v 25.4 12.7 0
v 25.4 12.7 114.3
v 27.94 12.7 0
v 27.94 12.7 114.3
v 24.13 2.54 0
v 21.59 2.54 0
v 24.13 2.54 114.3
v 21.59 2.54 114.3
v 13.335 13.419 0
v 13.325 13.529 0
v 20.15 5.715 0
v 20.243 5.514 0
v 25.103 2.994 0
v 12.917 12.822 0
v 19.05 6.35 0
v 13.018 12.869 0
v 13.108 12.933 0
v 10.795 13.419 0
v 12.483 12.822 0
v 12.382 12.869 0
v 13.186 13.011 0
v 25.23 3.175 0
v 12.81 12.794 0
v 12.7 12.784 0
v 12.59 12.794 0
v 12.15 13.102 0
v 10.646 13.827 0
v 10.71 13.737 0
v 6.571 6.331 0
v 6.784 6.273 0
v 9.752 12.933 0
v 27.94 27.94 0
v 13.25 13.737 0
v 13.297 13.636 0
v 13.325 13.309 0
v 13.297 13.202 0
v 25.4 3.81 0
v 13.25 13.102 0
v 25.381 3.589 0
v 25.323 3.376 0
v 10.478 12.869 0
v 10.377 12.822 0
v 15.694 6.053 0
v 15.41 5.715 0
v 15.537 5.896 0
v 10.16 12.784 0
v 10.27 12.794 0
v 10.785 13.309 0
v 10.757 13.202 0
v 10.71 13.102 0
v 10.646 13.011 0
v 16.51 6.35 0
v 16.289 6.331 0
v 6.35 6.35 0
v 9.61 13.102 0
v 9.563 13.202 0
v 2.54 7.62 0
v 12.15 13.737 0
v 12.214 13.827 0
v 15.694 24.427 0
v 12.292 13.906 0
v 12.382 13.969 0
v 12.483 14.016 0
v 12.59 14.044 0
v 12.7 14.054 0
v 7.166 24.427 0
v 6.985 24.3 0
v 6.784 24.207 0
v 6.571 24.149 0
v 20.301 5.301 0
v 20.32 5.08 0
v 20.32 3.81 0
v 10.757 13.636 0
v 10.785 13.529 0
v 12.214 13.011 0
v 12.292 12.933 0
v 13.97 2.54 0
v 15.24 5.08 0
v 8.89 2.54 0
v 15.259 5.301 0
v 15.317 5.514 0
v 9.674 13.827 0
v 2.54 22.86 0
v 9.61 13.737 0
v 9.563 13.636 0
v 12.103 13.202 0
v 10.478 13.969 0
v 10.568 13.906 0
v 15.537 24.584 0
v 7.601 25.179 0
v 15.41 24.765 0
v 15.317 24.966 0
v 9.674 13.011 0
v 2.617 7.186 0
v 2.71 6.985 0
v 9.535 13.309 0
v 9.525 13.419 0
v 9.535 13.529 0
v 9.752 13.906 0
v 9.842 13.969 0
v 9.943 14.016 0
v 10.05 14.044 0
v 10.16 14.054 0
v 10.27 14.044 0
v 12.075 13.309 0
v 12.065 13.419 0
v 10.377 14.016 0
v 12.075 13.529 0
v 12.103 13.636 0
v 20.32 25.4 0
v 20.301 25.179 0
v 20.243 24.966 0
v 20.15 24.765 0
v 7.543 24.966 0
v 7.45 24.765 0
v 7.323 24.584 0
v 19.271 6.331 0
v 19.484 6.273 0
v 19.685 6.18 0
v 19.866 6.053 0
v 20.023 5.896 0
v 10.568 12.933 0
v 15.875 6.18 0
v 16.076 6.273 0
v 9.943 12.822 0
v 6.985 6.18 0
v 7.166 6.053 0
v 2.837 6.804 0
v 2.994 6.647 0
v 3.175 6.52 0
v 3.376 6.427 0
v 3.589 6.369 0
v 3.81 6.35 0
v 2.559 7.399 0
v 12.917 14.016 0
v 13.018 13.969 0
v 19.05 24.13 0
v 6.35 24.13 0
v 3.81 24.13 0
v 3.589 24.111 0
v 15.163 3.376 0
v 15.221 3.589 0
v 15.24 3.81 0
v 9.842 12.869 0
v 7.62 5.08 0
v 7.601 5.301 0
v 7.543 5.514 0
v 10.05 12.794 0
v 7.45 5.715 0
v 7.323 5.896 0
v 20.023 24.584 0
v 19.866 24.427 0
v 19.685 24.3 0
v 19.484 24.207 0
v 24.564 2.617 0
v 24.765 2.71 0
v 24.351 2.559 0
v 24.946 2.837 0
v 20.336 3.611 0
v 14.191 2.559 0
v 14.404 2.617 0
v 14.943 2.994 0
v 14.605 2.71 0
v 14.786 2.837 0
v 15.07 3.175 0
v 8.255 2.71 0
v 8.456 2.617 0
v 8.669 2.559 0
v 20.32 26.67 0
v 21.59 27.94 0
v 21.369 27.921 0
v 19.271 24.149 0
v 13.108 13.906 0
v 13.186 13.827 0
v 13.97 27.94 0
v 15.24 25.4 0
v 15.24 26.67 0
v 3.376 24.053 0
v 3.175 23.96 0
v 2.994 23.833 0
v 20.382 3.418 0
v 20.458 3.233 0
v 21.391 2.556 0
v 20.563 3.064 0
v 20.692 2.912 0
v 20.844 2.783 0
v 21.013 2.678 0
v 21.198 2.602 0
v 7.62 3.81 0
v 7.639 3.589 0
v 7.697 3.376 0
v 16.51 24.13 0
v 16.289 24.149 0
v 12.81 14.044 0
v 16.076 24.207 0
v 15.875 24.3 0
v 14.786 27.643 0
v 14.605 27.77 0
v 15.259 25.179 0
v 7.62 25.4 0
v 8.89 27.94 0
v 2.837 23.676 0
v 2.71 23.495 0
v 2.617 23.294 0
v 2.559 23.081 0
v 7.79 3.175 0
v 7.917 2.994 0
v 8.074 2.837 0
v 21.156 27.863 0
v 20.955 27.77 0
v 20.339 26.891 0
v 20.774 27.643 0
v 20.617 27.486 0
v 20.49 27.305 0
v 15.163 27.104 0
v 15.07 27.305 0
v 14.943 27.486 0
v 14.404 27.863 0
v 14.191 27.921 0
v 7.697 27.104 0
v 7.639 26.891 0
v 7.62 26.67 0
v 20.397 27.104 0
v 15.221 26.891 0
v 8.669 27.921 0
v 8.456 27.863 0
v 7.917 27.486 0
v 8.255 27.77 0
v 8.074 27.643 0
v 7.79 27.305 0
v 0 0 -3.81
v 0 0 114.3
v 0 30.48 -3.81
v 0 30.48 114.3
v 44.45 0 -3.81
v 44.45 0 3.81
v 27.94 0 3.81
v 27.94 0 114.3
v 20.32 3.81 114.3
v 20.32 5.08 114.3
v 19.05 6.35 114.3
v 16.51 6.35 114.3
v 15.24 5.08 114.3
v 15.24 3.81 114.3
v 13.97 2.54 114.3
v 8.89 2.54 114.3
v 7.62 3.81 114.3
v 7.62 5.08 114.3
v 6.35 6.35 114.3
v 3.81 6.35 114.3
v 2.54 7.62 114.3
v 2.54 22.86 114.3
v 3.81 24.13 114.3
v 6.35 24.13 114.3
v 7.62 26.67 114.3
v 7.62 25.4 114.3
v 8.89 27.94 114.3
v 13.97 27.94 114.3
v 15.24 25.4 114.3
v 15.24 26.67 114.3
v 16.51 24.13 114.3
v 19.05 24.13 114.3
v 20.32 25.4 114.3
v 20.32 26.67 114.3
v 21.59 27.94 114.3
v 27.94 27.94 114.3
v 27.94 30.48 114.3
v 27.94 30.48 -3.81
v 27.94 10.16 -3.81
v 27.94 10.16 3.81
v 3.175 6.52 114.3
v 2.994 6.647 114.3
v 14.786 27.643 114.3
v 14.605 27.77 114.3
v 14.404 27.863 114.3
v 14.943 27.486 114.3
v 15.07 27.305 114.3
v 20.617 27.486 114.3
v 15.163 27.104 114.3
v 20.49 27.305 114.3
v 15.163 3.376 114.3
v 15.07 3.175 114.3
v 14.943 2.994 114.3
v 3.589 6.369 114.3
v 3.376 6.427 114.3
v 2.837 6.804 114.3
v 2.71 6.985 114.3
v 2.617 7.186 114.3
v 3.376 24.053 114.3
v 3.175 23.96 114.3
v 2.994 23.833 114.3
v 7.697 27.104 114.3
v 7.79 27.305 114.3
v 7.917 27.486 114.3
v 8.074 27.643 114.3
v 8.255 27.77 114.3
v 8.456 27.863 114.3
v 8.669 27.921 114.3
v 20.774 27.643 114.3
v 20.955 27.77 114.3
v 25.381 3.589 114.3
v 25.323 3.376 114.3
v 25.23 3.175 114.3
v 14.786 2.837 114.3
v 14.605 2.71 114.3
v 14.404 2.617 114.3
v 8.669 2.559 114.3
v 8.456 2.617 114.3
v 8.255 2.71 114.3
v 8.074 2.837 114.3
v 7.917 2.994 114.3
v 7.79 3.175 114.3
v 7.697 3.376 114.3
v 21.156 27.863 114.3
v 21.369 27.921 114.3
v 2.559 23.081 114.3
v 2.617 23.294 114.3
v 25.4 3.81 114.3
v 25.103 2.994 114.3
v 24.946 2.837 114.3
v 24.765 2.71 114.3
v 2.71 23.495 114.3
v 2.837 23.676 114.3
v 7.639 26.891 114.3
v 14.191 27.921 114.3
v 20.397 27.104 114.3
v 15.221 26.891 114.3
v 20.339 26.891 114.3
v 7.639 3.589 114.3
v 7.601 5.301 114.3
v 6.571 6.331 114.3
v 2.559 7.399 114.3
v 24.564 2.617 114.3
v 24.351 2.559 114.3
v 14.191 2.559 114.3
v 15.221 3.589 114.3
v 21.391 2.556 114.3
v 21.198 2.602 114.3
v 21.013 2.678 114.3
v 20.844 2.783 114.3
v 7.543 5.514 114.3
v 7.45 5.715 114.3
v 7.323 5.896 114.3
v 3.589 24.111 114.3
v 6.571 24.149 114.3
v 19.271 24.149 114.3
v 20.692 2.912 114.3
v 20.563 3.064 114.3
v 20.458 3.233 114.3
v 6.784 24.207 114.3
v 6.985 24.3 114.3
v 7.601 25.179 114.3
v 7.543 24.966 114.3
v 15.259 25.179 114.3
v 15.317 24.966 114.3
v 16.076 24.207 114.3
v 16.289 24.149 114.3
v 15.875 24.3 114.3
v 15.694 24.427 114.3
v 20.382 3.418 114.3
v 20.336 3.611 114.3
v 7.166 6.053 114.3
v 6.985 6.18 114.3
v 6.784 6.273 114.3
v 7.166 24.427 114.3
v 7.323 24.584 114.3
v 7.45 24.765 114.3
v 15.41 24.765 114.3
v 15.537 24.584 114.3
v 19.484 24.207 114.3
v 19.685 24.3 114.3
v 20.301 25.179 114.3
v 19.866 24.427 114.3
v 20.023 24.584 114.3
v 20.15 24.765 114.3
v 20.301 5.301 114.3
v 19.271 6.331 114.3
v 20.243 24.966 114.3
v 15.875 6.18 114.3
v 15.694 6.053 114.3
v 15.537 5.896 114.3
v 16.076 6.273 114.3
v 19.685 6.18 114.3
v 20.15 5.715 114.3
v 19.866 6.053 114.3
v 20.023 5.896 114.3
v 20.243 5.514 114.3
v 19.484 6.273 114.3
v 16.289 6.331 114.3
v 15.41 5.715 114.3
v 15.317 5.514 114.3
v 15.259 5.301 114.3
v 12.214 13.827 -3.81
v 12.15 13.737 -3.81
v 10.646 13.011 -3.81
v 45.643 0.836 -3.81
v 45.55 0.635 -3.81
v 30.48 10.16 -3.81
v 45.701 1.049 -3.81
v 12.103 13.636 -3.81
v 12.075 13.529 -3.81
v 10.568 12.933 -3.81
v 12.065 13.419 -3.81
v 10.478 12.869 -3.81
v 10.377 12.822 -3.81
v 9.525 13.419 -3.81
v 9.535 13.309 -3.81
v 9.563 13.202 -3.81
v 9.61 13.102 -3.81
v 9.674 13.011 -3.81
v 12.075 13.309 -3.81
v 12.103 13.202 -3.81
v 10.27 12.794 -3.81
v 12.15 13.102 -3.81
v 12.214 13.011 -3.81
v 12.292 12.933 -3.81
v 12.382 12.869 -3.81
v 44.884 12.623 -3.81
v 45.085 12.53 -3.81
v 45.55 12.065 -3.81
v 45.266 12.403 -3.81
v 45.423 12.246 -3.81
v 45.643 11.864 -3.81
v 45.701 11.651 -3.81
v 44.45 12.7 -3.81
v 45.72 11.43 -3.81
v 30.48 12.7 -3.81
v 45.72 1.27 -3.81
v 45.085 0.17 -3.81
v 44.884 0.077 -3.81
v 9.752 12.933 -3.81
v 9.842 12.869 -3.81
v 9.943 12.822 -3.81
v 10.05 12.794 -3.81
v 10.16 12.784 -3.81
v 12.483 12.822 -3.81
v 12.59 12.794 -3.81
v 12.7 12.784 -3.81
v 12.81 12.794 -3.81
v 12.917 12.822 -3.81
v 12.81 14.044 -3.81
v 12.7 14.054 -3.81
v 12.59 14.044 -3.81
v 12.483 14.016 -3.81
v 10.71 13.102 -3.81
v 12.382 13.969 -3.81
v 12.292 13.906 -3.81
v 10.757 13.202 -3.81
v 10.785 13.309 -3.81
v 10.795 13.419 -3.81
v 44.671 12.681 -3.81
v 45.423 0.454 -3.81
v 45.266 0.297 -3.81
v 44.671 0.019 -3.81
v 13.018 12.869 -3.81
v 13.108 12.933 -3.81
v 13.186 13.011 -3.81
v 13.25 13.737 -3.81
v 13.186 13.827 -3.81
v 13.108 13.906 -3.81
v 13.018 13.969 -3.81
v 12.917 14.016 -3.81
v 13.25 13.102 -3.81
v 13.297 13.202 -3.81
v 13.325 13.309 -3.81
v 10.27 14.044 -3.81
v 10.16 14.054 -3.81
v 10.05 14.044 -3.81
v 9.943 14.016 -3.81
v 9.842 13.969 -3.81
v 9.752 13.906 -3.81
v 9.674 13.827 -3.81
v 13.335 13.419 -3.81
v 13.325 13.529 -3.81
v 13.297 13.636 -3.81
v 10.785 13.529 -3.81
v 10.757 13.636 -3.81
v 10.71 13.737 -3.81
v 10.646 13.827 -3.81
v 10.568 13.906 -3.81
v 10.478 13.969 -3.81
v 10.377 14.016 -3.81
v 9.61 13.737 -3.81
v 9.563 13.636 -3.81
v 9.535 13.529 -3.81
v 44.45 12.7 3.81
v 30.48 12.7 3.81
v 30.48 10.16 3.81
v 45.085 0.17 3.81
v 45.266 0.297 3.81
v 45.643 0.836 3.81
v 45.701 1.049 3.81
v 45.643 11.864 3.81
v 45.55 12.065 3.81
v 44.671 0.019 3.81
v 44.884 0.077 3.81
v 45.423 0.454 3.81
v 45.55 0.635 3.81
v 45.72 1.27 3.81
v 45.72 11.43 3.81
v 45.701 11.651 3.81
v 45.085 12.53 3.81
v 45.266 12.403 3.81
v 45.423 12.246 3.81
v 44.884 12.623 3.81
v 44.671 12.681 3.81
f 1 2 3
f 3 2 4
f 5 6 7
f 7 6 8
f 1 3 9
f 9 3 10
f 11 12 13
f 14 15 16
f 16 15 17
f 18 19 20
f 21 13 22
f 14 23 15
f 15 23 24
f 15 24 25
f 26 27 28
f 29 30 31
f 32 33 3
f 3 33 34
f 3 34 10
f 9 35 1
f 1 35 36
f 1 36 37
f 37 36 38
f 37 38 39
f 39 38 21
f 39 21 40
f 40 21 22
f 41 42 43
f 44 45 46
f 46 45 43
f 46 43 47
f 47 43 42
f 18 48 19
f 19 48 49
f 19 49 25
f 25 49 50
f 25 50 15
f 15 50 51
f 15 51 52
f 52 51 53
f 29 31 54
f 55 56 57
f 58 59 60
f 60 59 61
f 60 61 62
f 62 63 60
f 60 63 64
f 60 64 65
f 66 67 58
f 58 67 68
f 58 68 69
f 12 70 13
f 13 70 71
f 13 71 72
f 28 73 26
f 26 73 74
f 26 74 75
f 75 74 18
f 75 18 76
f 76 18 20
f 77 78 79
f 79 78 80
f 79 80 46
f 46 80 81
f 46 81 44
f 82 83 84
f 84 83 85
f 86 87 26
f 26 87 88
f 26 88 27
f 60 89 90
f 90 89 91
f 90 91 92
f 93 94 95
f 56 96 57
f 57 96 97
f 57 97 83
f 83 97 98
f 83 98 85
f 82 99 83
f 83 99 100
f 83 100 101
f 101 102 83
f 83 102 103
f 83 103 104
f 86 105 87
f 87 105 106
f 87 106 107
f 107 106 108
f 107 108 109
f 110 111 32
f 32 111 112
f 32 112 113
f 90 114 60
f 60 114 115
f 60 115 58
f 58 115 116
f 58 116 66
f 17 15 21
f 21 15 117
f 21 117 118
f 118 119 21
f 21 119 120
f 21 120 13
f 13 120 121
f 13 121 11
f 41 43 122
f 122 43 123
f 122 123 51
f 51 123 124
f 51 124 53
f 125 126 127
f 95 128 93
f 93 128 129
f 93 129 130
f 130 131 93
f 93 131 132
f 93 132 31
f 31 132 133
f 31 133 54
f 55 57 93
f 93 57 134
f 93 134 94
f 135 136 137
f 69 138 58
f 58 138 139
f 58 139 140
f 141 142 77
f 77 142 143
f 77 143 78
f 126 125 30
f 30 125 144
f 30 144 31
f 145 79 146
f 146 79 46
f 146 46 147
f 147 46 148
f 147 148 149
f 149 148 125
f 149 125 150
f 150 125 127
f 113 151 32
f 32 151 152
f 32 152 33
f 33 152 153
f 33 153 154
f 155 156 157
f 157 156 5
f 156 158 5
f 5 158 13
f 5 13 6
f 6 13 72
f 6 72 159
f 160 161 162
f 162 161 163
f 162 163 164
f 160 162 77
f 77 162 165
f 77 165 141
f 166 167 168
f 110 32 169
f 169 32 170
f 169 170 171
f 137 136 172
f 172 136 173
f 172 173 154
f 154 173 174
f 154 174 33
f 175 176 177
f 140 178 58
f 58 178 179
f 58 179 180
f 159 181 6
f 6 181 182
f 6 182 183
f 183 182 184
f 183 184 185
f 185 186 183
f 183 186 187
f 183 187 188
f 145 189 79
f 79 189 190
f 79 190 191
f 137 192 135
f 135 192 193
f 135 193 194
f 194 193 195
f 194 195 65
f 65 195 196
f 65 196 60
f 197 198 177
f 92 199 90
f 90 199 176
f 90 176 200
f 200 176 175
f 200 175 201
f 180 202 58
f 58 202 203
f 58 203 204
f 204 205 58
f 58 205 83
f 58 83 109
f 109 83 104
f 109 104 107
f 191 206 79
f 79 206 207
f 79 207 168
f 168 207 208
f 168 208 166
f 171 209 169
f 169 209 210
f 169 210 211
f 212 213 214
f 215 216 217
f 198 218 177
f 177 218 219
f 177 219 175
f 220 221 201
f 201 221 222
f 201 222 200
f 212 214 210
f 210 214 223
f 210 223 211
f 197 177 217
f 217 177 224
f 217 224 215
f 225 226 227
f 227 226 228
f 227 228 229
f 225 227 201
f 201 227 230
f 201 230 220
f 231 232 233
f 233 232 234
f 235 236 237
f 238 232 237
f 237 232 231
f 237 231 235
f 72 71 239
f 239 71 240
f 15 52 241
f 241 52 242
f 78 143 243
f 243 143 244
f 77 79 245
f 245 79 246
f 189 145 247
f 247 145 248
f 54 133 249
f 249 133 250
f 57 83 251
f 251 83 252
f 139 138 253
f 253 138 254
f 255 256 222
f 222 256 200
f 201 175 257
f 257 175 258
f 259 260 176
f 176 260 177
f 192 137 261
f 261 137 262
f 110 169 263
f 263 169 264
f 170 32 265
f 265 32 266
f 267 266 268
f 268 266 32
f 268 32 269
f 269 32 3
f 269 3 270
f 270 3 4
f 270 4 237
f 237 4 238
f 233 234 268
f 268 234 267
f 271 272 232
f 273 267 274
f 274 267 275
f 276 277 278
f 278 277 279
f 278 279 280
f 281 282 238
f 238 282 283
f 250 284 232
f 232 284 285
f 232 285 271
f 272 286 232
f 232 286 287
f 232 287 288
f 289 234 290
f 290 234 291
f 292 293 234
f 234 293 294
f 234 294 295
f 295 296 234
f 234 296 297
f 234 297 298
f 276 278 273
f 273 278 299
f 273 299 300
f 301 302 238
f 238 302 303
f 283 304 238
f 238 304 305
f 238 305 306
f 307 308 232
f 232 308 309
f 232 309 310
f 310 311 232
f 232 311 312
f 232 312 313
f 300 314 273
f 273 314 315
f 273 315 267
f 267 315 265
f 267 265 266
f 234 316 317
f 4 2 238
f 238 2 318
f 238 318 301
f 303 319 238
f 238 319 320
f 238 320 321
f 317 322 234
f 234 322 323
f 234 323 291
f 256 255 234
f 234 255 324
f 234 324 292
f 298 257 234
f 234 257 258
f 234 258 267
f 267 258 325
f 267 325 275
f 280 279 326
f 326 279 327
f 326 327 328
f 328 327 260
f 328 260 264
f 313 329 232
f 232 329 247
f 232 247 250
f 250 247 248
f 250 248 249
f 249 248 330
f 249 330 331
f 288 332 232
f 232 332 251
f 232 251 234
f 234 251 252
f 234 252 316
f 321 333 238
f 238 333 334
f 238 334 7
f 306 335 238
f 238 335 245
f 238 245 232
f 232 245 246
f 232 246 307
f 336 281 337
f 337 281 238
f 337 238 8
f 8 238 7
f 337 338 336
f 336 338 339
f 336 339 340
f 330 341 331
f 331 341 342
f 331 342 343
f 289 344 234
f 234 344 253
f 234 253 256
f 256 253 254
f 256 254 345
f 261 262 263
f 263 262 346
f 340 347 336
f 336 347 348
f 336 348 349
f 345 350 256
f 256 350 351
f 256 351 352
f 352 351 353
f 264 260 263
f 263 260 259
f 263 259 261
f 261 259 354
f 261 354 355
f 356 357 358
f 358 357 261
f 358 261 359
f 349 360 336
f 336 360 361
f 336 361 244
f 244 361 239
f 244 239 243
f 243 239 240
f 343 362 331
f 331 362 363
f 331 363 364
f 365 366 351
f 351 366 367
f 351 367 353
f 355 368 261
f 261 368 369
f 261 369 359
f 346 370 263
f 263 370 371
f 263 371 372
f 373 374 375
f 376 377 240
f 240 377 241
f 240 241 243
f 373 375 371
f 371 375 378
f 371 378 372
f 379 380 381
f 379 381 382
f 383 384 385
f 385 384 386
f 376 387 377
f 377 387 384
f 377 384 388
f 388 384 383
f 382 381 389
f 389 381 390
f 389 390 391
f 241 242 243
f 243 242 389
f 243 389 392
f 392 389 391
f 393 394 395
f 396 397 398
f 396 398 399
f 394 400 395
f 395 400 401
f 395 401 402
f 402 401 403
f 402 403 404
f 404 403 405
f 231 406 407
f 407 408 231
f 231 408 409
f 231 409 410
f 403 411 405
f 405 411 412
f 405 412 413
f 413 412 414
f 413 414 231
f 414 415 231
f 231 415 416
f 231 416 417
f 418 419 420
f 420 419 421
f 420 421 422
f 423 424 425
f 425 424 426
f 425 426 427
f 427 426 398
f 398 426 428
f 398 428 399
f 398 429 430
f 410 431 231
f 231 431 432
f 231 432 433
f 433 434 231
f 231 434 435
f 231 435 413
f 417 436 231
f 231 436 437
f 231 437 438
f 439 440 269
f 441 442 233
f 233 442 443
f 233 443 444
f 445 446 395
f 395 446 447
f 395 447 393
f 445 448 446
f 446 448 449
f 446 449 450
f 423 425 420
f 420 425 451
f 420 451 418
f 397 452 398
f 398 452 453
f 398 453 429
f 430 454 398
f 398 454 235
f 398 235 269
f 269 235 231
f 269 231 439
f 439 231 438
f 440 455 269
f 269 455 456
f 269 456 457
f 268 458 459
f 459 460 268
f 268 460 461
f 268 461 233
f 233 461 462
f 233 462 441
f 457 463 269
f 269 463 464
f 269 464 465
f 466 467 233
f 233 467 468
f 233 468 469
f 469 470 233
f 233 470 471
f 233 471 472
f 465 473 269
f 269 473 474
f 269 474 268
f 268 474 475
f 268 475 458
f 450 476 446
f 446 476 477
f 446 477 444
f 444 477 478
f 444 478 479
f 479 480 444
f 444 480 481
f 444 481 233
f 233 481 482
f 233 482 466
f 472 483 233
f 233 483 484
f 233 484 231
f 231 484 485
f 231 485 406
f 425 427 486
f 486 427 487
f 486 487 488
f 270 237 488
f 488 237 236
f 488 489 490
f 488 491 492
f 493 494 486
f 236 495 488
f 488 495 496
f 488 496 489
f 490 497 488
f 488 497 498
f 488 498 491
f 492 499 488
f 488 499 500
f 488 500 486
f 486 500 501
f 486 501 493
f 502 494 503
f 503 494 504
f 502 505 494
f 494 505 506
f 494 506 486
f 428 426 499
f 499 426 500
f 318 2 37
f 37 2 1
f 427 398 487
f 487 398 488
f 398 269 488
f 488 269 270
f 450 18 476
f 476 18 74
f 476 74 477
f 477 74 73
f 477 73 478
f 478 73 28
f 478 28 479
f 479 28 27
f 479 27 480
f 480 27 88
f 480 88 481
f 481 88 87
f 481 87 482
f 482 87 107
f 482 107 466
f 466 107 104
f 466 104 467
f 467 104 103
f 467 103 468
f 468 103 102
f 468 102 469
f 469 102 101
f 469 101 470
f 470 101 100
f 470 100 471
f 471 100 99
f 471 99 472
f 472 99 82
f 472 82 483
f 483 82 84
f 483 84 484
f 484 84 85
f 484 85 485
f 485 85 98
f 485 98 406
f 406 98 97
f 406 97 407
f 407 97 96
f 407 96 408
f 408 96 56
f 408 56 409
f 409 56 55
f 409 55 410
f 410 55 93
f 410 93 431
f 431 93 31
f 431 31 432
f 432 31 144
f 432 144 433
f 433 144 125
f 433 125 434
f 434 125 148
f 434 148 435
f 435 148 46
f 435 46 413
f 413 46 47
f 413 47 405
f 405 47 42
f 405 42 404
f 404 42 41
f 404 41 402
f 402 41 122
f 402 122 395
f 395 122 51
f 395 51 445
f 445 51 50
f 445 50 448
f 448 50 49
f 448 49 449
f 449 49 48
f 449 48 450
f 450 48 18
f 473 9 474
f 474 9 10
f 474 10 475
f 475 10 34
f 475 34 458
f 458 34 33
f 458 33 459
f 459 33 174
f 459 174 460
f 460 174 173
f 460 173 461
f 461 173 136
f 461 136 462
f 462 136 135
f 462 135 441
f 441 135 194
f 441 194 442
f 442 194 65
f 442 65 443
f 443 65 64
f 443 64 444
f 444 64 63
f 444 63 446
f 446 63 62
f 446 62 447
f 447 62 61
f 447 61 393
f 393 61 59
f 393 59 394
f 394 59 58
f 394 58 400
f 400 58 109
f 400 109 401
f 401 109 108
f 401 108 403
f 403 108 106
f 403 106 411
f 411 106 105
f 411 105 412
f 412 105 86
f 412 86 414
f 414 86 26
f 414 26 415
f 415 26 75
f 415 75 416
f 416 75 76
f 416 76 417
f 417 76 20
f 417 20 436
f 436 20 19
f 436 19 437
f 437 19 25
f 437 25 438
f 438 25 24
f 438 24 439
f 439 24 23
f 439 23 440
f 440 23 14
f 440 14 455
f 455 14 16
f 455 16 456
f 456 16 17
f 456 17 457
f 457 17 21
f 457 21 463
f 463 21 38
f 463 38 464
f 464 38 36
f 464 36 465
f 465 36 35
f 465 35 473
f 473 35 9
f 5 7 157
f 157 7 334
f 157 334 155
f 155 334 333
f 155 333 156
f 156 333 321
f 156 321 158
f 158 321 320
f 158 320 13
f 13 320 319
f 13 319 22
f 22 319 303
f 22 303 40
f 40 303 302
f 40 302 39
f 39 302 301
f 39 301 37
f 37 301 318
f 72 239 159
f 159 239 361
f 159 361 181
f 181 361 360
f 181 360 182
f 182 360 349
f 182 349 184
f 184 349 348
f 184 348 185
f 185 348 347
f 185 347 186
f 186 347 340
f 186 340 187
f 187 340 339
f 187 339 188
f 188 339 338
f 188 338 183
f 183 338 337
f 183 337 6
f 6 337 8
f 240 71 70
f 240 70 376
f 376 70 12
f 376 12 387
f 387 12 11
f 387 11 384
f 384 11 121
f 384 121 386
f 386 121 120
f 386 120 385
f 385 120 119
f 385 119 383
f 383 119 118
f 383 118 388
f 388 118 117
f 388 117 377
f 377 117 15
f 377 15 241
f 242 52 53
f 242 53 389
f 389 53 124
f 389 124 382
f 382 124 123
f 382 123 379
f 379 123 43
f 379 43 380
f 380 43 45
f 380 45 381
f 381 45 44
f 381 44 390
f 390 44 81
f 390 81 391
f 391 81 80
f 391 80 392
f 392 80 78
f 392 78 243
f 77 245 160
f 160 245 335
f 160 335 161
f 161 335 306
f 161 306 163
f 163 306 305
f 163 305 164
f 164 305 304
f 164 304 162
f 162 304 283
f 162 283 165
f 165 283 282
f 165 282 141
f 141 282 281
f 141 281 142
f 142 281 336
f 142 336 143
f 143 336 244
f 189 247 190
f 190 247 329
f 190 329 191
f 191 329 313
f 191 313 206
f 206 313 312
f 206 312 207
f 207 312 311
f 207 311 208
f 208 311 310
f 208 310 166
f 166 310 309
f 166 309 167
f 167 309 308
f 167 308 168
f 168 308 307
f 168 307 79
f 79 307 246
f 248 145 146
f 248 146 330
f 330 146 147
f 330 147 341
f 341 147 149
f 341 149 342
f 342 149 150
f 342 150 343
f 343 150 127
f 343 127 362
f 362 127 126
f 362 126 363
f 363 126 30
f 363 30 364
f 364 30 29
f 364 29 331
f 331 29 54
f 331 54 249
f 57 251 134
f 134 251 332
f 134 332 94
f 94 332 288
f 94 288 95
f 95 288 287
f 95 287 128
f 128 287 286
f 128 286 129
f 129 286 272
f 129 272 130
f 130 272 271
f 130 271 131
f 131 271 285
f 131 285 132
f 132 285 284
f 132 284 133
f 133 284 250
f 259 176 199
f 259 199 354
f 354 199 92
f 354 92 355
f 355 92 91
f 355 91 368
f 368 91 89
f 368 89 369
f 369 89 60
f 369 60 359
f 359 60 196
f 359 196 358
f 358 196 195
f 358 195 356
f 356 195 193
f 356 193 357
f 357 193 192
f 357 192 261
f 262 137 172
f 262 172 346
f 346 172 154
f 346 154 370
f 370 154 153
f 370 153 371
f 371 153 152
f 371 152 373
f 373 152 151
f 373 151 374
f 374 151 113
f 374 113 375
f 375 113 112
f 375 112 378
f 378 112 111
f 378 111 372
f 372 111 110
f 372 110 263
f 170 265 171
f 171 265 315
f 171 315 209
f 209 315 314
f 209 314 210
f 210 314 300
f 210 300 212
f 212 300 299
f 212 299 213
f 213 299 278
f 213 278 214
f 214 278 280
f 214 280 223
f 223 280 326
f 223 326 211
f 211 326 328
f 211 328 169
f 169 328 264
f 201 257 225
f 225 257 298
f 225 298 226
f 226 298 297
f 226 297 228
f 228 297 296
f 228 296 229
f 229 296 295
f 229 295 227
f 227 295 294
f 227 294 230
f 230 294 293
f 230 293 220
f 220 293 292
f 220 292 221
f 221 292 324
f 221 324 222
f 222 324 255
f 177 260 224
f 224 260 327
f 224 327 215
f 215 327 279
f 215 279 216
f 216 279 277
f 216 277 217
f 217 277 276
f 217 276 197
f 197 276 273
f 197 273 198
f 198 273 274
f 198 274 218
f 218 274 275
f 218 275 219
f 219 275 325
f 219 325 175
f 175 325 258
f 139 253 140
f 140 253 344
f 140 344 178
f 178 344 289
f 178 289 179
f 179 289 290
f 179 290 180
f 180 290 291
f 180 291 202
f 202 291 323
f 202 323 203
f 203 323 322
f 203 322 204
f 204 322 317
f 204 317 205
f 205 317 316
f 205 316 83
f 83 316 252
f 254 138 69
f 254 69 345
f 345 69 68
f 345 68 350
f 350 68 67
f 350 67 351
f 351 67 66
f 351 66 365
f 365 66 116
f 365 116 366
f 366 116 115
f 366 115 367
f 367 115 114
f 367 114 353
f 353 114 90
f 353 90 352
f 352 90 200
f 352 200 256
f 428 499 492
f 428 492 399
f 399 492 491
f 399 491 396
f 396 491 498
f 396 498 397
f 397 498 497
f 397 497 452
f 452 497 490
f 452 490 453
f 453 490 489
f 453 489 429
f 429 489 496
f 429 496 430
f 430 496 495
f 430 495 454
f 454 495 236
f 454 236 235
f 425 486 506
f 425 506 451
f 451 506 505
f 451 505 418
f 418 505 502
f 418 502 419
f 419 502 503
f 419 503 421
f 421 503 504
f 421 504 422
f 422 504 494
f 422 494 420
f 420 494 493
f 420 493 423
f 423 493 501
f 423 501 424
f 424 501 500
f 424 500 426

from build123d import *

# Parameters (mm, degrees)
BOSS_EXTRUDE1_DEPTH = 114.3
SKETCH6_W           = 27.94
SKETCH6_H           = 30.48
BOSS_EXTRUDE5_DEPTH = 3.81
SKETCH8_W           = 7.62
SKETCH8_H           = 12.7
BOSS_EXTRUDE6_DEPTH = 17.78
SKETCH9_W           = 2.54
SKETCH9_H           = 10.16
BOSS_EXTRUDE7_DEPTH = 114.3
SKETCH10_W          = 2.54
SKETCH10_H          = 2.54
CUT_EXTRUDE2_DEPTH  = 124.399306724
SKETCH11_R          = 0.635
CUT_EXTRUDE3_DEPTH  = 127.822075365
FILLET3_R           = 1.27
FILLET4_R           = 1.27


with BuildPart() as part:
    # Sketch1 → Boss-Extrude1 (new body)
    with BuildSketch(Plane.XY):
        Polygon((27.94, 30.48), (27.94, 27.94), (20.32, 27.94), (20.32, 24.13), (15.24, 24.13), (15.24, 27.94), (7.62, 27.94), (7.62, 24.13), (2.54, 24.13), (2.54, 6.35), (7.62, 6.35), (7.62, 2.54), (15.24, 2.54), (15.24, 6.35), (20.32, 6.35), (20.32, 2.54), (27.94, 2.54), (27.94, 0), (0, 0), (0, 30.48), align=None)
    extrude(amount=BOSS_EXTRUDE1_DEPTH)

    # Sketch6 → Boss-Extrude5 (add)
    with BuildSketch(Plane(origin=(0, 0, 0), x_dir=(-1, 0, 0), z_dir=(0, 0, -1))):
        with Locations((-13.97, 15.24)):
            Rectangle(SKETCH6_W, SKETCH6_H)
    extrude(amount=BOSS_EXTRUDE5_DEPTH)

    # Sketch8 → Boss-Extrude6 (add)
    with BuildSketch(Plane(origin=(27.94, 0, 0), x_dir=(0, 0, -1), z_dir=(1, 0, 0))):
        with Locations((0, 6.35)):
            Rectangle(SKETCH8_W, SKETCH8_H)
    extrude(amount=BOSS_EXTRUDE6_DEPTH)

    # Sketch9 → Boss-Extrude7 (add, through all)
    with BuildSketch(Plane.XY):
        with Locations((26.67, 7.62)):
            Rectangle(SKETCH9_W, SKETCH9_H)
    extrude(amount=BOSS_EXTRUDE7_DEPTH)

    # Sketch10 → Cut-Extrude2 (cut, through all)
    with BuildSketch(Plane.XY.offset(3.81)):
        with Locations((29.21, 11.43)):
            Rectangle(SKETCH10_W, SKETCH10_H)
    extrude(amount=-CUT_EXTRUDE2_DEPTH, mode=Mode.SUBTRACT)

    # Sketch11 → Cut-Extrude3 (cut, through all)
    with BuildSketch(Plane.XY):
        with Locations((10.16, 13.41906471)):
            Circle(SKETCH11_R)
        with Locations((12.7, 13.41906471)):
            Circle(SKETCH11_R)
    extrude(amount=-CUT_EXTRUDE3_DEPTH, mode=Mode.SUBTRACT)

    # Fillet3
    fillet3_edges = [part.edges().sort_by_distance(p)[0] for p in [
        (20.32, 27.94, 57.15),
        (20.32, 24.13, 57.15),
        (15.24, 24.13, 57.15),
        (15.24, 27.94, 57.15),
        (7.62, 27.94, 57.15),
        (7.62, 24.13, 57.15),
        (2.54, 24.13, 57.15),
        (2.54, 6.35, 57.15),
        (7.62, 6.35, 57.15),
        (7.62, 2.54, 57.15),
        (15.24, 2.54, 57.15),
        (15.24, 6.35, 57.15),
        (20.32, 6.35, 57.15),
        (20.32, 2.54, 57.15),
        (25.4, 2.54, 57.15),
    ]]
    fillet(fillet3_edges, radius=FILLET3_R)

    # Fillet4
    fillet4_edges = [part.edges().sort_by_distance(p)[0] for p in [
        (45.72, 0, 0),
        (45.72, 12.7, 0),
    ]]
    fillet(fillet4_edges, radius=FILLET4_R)


solid = part.part
